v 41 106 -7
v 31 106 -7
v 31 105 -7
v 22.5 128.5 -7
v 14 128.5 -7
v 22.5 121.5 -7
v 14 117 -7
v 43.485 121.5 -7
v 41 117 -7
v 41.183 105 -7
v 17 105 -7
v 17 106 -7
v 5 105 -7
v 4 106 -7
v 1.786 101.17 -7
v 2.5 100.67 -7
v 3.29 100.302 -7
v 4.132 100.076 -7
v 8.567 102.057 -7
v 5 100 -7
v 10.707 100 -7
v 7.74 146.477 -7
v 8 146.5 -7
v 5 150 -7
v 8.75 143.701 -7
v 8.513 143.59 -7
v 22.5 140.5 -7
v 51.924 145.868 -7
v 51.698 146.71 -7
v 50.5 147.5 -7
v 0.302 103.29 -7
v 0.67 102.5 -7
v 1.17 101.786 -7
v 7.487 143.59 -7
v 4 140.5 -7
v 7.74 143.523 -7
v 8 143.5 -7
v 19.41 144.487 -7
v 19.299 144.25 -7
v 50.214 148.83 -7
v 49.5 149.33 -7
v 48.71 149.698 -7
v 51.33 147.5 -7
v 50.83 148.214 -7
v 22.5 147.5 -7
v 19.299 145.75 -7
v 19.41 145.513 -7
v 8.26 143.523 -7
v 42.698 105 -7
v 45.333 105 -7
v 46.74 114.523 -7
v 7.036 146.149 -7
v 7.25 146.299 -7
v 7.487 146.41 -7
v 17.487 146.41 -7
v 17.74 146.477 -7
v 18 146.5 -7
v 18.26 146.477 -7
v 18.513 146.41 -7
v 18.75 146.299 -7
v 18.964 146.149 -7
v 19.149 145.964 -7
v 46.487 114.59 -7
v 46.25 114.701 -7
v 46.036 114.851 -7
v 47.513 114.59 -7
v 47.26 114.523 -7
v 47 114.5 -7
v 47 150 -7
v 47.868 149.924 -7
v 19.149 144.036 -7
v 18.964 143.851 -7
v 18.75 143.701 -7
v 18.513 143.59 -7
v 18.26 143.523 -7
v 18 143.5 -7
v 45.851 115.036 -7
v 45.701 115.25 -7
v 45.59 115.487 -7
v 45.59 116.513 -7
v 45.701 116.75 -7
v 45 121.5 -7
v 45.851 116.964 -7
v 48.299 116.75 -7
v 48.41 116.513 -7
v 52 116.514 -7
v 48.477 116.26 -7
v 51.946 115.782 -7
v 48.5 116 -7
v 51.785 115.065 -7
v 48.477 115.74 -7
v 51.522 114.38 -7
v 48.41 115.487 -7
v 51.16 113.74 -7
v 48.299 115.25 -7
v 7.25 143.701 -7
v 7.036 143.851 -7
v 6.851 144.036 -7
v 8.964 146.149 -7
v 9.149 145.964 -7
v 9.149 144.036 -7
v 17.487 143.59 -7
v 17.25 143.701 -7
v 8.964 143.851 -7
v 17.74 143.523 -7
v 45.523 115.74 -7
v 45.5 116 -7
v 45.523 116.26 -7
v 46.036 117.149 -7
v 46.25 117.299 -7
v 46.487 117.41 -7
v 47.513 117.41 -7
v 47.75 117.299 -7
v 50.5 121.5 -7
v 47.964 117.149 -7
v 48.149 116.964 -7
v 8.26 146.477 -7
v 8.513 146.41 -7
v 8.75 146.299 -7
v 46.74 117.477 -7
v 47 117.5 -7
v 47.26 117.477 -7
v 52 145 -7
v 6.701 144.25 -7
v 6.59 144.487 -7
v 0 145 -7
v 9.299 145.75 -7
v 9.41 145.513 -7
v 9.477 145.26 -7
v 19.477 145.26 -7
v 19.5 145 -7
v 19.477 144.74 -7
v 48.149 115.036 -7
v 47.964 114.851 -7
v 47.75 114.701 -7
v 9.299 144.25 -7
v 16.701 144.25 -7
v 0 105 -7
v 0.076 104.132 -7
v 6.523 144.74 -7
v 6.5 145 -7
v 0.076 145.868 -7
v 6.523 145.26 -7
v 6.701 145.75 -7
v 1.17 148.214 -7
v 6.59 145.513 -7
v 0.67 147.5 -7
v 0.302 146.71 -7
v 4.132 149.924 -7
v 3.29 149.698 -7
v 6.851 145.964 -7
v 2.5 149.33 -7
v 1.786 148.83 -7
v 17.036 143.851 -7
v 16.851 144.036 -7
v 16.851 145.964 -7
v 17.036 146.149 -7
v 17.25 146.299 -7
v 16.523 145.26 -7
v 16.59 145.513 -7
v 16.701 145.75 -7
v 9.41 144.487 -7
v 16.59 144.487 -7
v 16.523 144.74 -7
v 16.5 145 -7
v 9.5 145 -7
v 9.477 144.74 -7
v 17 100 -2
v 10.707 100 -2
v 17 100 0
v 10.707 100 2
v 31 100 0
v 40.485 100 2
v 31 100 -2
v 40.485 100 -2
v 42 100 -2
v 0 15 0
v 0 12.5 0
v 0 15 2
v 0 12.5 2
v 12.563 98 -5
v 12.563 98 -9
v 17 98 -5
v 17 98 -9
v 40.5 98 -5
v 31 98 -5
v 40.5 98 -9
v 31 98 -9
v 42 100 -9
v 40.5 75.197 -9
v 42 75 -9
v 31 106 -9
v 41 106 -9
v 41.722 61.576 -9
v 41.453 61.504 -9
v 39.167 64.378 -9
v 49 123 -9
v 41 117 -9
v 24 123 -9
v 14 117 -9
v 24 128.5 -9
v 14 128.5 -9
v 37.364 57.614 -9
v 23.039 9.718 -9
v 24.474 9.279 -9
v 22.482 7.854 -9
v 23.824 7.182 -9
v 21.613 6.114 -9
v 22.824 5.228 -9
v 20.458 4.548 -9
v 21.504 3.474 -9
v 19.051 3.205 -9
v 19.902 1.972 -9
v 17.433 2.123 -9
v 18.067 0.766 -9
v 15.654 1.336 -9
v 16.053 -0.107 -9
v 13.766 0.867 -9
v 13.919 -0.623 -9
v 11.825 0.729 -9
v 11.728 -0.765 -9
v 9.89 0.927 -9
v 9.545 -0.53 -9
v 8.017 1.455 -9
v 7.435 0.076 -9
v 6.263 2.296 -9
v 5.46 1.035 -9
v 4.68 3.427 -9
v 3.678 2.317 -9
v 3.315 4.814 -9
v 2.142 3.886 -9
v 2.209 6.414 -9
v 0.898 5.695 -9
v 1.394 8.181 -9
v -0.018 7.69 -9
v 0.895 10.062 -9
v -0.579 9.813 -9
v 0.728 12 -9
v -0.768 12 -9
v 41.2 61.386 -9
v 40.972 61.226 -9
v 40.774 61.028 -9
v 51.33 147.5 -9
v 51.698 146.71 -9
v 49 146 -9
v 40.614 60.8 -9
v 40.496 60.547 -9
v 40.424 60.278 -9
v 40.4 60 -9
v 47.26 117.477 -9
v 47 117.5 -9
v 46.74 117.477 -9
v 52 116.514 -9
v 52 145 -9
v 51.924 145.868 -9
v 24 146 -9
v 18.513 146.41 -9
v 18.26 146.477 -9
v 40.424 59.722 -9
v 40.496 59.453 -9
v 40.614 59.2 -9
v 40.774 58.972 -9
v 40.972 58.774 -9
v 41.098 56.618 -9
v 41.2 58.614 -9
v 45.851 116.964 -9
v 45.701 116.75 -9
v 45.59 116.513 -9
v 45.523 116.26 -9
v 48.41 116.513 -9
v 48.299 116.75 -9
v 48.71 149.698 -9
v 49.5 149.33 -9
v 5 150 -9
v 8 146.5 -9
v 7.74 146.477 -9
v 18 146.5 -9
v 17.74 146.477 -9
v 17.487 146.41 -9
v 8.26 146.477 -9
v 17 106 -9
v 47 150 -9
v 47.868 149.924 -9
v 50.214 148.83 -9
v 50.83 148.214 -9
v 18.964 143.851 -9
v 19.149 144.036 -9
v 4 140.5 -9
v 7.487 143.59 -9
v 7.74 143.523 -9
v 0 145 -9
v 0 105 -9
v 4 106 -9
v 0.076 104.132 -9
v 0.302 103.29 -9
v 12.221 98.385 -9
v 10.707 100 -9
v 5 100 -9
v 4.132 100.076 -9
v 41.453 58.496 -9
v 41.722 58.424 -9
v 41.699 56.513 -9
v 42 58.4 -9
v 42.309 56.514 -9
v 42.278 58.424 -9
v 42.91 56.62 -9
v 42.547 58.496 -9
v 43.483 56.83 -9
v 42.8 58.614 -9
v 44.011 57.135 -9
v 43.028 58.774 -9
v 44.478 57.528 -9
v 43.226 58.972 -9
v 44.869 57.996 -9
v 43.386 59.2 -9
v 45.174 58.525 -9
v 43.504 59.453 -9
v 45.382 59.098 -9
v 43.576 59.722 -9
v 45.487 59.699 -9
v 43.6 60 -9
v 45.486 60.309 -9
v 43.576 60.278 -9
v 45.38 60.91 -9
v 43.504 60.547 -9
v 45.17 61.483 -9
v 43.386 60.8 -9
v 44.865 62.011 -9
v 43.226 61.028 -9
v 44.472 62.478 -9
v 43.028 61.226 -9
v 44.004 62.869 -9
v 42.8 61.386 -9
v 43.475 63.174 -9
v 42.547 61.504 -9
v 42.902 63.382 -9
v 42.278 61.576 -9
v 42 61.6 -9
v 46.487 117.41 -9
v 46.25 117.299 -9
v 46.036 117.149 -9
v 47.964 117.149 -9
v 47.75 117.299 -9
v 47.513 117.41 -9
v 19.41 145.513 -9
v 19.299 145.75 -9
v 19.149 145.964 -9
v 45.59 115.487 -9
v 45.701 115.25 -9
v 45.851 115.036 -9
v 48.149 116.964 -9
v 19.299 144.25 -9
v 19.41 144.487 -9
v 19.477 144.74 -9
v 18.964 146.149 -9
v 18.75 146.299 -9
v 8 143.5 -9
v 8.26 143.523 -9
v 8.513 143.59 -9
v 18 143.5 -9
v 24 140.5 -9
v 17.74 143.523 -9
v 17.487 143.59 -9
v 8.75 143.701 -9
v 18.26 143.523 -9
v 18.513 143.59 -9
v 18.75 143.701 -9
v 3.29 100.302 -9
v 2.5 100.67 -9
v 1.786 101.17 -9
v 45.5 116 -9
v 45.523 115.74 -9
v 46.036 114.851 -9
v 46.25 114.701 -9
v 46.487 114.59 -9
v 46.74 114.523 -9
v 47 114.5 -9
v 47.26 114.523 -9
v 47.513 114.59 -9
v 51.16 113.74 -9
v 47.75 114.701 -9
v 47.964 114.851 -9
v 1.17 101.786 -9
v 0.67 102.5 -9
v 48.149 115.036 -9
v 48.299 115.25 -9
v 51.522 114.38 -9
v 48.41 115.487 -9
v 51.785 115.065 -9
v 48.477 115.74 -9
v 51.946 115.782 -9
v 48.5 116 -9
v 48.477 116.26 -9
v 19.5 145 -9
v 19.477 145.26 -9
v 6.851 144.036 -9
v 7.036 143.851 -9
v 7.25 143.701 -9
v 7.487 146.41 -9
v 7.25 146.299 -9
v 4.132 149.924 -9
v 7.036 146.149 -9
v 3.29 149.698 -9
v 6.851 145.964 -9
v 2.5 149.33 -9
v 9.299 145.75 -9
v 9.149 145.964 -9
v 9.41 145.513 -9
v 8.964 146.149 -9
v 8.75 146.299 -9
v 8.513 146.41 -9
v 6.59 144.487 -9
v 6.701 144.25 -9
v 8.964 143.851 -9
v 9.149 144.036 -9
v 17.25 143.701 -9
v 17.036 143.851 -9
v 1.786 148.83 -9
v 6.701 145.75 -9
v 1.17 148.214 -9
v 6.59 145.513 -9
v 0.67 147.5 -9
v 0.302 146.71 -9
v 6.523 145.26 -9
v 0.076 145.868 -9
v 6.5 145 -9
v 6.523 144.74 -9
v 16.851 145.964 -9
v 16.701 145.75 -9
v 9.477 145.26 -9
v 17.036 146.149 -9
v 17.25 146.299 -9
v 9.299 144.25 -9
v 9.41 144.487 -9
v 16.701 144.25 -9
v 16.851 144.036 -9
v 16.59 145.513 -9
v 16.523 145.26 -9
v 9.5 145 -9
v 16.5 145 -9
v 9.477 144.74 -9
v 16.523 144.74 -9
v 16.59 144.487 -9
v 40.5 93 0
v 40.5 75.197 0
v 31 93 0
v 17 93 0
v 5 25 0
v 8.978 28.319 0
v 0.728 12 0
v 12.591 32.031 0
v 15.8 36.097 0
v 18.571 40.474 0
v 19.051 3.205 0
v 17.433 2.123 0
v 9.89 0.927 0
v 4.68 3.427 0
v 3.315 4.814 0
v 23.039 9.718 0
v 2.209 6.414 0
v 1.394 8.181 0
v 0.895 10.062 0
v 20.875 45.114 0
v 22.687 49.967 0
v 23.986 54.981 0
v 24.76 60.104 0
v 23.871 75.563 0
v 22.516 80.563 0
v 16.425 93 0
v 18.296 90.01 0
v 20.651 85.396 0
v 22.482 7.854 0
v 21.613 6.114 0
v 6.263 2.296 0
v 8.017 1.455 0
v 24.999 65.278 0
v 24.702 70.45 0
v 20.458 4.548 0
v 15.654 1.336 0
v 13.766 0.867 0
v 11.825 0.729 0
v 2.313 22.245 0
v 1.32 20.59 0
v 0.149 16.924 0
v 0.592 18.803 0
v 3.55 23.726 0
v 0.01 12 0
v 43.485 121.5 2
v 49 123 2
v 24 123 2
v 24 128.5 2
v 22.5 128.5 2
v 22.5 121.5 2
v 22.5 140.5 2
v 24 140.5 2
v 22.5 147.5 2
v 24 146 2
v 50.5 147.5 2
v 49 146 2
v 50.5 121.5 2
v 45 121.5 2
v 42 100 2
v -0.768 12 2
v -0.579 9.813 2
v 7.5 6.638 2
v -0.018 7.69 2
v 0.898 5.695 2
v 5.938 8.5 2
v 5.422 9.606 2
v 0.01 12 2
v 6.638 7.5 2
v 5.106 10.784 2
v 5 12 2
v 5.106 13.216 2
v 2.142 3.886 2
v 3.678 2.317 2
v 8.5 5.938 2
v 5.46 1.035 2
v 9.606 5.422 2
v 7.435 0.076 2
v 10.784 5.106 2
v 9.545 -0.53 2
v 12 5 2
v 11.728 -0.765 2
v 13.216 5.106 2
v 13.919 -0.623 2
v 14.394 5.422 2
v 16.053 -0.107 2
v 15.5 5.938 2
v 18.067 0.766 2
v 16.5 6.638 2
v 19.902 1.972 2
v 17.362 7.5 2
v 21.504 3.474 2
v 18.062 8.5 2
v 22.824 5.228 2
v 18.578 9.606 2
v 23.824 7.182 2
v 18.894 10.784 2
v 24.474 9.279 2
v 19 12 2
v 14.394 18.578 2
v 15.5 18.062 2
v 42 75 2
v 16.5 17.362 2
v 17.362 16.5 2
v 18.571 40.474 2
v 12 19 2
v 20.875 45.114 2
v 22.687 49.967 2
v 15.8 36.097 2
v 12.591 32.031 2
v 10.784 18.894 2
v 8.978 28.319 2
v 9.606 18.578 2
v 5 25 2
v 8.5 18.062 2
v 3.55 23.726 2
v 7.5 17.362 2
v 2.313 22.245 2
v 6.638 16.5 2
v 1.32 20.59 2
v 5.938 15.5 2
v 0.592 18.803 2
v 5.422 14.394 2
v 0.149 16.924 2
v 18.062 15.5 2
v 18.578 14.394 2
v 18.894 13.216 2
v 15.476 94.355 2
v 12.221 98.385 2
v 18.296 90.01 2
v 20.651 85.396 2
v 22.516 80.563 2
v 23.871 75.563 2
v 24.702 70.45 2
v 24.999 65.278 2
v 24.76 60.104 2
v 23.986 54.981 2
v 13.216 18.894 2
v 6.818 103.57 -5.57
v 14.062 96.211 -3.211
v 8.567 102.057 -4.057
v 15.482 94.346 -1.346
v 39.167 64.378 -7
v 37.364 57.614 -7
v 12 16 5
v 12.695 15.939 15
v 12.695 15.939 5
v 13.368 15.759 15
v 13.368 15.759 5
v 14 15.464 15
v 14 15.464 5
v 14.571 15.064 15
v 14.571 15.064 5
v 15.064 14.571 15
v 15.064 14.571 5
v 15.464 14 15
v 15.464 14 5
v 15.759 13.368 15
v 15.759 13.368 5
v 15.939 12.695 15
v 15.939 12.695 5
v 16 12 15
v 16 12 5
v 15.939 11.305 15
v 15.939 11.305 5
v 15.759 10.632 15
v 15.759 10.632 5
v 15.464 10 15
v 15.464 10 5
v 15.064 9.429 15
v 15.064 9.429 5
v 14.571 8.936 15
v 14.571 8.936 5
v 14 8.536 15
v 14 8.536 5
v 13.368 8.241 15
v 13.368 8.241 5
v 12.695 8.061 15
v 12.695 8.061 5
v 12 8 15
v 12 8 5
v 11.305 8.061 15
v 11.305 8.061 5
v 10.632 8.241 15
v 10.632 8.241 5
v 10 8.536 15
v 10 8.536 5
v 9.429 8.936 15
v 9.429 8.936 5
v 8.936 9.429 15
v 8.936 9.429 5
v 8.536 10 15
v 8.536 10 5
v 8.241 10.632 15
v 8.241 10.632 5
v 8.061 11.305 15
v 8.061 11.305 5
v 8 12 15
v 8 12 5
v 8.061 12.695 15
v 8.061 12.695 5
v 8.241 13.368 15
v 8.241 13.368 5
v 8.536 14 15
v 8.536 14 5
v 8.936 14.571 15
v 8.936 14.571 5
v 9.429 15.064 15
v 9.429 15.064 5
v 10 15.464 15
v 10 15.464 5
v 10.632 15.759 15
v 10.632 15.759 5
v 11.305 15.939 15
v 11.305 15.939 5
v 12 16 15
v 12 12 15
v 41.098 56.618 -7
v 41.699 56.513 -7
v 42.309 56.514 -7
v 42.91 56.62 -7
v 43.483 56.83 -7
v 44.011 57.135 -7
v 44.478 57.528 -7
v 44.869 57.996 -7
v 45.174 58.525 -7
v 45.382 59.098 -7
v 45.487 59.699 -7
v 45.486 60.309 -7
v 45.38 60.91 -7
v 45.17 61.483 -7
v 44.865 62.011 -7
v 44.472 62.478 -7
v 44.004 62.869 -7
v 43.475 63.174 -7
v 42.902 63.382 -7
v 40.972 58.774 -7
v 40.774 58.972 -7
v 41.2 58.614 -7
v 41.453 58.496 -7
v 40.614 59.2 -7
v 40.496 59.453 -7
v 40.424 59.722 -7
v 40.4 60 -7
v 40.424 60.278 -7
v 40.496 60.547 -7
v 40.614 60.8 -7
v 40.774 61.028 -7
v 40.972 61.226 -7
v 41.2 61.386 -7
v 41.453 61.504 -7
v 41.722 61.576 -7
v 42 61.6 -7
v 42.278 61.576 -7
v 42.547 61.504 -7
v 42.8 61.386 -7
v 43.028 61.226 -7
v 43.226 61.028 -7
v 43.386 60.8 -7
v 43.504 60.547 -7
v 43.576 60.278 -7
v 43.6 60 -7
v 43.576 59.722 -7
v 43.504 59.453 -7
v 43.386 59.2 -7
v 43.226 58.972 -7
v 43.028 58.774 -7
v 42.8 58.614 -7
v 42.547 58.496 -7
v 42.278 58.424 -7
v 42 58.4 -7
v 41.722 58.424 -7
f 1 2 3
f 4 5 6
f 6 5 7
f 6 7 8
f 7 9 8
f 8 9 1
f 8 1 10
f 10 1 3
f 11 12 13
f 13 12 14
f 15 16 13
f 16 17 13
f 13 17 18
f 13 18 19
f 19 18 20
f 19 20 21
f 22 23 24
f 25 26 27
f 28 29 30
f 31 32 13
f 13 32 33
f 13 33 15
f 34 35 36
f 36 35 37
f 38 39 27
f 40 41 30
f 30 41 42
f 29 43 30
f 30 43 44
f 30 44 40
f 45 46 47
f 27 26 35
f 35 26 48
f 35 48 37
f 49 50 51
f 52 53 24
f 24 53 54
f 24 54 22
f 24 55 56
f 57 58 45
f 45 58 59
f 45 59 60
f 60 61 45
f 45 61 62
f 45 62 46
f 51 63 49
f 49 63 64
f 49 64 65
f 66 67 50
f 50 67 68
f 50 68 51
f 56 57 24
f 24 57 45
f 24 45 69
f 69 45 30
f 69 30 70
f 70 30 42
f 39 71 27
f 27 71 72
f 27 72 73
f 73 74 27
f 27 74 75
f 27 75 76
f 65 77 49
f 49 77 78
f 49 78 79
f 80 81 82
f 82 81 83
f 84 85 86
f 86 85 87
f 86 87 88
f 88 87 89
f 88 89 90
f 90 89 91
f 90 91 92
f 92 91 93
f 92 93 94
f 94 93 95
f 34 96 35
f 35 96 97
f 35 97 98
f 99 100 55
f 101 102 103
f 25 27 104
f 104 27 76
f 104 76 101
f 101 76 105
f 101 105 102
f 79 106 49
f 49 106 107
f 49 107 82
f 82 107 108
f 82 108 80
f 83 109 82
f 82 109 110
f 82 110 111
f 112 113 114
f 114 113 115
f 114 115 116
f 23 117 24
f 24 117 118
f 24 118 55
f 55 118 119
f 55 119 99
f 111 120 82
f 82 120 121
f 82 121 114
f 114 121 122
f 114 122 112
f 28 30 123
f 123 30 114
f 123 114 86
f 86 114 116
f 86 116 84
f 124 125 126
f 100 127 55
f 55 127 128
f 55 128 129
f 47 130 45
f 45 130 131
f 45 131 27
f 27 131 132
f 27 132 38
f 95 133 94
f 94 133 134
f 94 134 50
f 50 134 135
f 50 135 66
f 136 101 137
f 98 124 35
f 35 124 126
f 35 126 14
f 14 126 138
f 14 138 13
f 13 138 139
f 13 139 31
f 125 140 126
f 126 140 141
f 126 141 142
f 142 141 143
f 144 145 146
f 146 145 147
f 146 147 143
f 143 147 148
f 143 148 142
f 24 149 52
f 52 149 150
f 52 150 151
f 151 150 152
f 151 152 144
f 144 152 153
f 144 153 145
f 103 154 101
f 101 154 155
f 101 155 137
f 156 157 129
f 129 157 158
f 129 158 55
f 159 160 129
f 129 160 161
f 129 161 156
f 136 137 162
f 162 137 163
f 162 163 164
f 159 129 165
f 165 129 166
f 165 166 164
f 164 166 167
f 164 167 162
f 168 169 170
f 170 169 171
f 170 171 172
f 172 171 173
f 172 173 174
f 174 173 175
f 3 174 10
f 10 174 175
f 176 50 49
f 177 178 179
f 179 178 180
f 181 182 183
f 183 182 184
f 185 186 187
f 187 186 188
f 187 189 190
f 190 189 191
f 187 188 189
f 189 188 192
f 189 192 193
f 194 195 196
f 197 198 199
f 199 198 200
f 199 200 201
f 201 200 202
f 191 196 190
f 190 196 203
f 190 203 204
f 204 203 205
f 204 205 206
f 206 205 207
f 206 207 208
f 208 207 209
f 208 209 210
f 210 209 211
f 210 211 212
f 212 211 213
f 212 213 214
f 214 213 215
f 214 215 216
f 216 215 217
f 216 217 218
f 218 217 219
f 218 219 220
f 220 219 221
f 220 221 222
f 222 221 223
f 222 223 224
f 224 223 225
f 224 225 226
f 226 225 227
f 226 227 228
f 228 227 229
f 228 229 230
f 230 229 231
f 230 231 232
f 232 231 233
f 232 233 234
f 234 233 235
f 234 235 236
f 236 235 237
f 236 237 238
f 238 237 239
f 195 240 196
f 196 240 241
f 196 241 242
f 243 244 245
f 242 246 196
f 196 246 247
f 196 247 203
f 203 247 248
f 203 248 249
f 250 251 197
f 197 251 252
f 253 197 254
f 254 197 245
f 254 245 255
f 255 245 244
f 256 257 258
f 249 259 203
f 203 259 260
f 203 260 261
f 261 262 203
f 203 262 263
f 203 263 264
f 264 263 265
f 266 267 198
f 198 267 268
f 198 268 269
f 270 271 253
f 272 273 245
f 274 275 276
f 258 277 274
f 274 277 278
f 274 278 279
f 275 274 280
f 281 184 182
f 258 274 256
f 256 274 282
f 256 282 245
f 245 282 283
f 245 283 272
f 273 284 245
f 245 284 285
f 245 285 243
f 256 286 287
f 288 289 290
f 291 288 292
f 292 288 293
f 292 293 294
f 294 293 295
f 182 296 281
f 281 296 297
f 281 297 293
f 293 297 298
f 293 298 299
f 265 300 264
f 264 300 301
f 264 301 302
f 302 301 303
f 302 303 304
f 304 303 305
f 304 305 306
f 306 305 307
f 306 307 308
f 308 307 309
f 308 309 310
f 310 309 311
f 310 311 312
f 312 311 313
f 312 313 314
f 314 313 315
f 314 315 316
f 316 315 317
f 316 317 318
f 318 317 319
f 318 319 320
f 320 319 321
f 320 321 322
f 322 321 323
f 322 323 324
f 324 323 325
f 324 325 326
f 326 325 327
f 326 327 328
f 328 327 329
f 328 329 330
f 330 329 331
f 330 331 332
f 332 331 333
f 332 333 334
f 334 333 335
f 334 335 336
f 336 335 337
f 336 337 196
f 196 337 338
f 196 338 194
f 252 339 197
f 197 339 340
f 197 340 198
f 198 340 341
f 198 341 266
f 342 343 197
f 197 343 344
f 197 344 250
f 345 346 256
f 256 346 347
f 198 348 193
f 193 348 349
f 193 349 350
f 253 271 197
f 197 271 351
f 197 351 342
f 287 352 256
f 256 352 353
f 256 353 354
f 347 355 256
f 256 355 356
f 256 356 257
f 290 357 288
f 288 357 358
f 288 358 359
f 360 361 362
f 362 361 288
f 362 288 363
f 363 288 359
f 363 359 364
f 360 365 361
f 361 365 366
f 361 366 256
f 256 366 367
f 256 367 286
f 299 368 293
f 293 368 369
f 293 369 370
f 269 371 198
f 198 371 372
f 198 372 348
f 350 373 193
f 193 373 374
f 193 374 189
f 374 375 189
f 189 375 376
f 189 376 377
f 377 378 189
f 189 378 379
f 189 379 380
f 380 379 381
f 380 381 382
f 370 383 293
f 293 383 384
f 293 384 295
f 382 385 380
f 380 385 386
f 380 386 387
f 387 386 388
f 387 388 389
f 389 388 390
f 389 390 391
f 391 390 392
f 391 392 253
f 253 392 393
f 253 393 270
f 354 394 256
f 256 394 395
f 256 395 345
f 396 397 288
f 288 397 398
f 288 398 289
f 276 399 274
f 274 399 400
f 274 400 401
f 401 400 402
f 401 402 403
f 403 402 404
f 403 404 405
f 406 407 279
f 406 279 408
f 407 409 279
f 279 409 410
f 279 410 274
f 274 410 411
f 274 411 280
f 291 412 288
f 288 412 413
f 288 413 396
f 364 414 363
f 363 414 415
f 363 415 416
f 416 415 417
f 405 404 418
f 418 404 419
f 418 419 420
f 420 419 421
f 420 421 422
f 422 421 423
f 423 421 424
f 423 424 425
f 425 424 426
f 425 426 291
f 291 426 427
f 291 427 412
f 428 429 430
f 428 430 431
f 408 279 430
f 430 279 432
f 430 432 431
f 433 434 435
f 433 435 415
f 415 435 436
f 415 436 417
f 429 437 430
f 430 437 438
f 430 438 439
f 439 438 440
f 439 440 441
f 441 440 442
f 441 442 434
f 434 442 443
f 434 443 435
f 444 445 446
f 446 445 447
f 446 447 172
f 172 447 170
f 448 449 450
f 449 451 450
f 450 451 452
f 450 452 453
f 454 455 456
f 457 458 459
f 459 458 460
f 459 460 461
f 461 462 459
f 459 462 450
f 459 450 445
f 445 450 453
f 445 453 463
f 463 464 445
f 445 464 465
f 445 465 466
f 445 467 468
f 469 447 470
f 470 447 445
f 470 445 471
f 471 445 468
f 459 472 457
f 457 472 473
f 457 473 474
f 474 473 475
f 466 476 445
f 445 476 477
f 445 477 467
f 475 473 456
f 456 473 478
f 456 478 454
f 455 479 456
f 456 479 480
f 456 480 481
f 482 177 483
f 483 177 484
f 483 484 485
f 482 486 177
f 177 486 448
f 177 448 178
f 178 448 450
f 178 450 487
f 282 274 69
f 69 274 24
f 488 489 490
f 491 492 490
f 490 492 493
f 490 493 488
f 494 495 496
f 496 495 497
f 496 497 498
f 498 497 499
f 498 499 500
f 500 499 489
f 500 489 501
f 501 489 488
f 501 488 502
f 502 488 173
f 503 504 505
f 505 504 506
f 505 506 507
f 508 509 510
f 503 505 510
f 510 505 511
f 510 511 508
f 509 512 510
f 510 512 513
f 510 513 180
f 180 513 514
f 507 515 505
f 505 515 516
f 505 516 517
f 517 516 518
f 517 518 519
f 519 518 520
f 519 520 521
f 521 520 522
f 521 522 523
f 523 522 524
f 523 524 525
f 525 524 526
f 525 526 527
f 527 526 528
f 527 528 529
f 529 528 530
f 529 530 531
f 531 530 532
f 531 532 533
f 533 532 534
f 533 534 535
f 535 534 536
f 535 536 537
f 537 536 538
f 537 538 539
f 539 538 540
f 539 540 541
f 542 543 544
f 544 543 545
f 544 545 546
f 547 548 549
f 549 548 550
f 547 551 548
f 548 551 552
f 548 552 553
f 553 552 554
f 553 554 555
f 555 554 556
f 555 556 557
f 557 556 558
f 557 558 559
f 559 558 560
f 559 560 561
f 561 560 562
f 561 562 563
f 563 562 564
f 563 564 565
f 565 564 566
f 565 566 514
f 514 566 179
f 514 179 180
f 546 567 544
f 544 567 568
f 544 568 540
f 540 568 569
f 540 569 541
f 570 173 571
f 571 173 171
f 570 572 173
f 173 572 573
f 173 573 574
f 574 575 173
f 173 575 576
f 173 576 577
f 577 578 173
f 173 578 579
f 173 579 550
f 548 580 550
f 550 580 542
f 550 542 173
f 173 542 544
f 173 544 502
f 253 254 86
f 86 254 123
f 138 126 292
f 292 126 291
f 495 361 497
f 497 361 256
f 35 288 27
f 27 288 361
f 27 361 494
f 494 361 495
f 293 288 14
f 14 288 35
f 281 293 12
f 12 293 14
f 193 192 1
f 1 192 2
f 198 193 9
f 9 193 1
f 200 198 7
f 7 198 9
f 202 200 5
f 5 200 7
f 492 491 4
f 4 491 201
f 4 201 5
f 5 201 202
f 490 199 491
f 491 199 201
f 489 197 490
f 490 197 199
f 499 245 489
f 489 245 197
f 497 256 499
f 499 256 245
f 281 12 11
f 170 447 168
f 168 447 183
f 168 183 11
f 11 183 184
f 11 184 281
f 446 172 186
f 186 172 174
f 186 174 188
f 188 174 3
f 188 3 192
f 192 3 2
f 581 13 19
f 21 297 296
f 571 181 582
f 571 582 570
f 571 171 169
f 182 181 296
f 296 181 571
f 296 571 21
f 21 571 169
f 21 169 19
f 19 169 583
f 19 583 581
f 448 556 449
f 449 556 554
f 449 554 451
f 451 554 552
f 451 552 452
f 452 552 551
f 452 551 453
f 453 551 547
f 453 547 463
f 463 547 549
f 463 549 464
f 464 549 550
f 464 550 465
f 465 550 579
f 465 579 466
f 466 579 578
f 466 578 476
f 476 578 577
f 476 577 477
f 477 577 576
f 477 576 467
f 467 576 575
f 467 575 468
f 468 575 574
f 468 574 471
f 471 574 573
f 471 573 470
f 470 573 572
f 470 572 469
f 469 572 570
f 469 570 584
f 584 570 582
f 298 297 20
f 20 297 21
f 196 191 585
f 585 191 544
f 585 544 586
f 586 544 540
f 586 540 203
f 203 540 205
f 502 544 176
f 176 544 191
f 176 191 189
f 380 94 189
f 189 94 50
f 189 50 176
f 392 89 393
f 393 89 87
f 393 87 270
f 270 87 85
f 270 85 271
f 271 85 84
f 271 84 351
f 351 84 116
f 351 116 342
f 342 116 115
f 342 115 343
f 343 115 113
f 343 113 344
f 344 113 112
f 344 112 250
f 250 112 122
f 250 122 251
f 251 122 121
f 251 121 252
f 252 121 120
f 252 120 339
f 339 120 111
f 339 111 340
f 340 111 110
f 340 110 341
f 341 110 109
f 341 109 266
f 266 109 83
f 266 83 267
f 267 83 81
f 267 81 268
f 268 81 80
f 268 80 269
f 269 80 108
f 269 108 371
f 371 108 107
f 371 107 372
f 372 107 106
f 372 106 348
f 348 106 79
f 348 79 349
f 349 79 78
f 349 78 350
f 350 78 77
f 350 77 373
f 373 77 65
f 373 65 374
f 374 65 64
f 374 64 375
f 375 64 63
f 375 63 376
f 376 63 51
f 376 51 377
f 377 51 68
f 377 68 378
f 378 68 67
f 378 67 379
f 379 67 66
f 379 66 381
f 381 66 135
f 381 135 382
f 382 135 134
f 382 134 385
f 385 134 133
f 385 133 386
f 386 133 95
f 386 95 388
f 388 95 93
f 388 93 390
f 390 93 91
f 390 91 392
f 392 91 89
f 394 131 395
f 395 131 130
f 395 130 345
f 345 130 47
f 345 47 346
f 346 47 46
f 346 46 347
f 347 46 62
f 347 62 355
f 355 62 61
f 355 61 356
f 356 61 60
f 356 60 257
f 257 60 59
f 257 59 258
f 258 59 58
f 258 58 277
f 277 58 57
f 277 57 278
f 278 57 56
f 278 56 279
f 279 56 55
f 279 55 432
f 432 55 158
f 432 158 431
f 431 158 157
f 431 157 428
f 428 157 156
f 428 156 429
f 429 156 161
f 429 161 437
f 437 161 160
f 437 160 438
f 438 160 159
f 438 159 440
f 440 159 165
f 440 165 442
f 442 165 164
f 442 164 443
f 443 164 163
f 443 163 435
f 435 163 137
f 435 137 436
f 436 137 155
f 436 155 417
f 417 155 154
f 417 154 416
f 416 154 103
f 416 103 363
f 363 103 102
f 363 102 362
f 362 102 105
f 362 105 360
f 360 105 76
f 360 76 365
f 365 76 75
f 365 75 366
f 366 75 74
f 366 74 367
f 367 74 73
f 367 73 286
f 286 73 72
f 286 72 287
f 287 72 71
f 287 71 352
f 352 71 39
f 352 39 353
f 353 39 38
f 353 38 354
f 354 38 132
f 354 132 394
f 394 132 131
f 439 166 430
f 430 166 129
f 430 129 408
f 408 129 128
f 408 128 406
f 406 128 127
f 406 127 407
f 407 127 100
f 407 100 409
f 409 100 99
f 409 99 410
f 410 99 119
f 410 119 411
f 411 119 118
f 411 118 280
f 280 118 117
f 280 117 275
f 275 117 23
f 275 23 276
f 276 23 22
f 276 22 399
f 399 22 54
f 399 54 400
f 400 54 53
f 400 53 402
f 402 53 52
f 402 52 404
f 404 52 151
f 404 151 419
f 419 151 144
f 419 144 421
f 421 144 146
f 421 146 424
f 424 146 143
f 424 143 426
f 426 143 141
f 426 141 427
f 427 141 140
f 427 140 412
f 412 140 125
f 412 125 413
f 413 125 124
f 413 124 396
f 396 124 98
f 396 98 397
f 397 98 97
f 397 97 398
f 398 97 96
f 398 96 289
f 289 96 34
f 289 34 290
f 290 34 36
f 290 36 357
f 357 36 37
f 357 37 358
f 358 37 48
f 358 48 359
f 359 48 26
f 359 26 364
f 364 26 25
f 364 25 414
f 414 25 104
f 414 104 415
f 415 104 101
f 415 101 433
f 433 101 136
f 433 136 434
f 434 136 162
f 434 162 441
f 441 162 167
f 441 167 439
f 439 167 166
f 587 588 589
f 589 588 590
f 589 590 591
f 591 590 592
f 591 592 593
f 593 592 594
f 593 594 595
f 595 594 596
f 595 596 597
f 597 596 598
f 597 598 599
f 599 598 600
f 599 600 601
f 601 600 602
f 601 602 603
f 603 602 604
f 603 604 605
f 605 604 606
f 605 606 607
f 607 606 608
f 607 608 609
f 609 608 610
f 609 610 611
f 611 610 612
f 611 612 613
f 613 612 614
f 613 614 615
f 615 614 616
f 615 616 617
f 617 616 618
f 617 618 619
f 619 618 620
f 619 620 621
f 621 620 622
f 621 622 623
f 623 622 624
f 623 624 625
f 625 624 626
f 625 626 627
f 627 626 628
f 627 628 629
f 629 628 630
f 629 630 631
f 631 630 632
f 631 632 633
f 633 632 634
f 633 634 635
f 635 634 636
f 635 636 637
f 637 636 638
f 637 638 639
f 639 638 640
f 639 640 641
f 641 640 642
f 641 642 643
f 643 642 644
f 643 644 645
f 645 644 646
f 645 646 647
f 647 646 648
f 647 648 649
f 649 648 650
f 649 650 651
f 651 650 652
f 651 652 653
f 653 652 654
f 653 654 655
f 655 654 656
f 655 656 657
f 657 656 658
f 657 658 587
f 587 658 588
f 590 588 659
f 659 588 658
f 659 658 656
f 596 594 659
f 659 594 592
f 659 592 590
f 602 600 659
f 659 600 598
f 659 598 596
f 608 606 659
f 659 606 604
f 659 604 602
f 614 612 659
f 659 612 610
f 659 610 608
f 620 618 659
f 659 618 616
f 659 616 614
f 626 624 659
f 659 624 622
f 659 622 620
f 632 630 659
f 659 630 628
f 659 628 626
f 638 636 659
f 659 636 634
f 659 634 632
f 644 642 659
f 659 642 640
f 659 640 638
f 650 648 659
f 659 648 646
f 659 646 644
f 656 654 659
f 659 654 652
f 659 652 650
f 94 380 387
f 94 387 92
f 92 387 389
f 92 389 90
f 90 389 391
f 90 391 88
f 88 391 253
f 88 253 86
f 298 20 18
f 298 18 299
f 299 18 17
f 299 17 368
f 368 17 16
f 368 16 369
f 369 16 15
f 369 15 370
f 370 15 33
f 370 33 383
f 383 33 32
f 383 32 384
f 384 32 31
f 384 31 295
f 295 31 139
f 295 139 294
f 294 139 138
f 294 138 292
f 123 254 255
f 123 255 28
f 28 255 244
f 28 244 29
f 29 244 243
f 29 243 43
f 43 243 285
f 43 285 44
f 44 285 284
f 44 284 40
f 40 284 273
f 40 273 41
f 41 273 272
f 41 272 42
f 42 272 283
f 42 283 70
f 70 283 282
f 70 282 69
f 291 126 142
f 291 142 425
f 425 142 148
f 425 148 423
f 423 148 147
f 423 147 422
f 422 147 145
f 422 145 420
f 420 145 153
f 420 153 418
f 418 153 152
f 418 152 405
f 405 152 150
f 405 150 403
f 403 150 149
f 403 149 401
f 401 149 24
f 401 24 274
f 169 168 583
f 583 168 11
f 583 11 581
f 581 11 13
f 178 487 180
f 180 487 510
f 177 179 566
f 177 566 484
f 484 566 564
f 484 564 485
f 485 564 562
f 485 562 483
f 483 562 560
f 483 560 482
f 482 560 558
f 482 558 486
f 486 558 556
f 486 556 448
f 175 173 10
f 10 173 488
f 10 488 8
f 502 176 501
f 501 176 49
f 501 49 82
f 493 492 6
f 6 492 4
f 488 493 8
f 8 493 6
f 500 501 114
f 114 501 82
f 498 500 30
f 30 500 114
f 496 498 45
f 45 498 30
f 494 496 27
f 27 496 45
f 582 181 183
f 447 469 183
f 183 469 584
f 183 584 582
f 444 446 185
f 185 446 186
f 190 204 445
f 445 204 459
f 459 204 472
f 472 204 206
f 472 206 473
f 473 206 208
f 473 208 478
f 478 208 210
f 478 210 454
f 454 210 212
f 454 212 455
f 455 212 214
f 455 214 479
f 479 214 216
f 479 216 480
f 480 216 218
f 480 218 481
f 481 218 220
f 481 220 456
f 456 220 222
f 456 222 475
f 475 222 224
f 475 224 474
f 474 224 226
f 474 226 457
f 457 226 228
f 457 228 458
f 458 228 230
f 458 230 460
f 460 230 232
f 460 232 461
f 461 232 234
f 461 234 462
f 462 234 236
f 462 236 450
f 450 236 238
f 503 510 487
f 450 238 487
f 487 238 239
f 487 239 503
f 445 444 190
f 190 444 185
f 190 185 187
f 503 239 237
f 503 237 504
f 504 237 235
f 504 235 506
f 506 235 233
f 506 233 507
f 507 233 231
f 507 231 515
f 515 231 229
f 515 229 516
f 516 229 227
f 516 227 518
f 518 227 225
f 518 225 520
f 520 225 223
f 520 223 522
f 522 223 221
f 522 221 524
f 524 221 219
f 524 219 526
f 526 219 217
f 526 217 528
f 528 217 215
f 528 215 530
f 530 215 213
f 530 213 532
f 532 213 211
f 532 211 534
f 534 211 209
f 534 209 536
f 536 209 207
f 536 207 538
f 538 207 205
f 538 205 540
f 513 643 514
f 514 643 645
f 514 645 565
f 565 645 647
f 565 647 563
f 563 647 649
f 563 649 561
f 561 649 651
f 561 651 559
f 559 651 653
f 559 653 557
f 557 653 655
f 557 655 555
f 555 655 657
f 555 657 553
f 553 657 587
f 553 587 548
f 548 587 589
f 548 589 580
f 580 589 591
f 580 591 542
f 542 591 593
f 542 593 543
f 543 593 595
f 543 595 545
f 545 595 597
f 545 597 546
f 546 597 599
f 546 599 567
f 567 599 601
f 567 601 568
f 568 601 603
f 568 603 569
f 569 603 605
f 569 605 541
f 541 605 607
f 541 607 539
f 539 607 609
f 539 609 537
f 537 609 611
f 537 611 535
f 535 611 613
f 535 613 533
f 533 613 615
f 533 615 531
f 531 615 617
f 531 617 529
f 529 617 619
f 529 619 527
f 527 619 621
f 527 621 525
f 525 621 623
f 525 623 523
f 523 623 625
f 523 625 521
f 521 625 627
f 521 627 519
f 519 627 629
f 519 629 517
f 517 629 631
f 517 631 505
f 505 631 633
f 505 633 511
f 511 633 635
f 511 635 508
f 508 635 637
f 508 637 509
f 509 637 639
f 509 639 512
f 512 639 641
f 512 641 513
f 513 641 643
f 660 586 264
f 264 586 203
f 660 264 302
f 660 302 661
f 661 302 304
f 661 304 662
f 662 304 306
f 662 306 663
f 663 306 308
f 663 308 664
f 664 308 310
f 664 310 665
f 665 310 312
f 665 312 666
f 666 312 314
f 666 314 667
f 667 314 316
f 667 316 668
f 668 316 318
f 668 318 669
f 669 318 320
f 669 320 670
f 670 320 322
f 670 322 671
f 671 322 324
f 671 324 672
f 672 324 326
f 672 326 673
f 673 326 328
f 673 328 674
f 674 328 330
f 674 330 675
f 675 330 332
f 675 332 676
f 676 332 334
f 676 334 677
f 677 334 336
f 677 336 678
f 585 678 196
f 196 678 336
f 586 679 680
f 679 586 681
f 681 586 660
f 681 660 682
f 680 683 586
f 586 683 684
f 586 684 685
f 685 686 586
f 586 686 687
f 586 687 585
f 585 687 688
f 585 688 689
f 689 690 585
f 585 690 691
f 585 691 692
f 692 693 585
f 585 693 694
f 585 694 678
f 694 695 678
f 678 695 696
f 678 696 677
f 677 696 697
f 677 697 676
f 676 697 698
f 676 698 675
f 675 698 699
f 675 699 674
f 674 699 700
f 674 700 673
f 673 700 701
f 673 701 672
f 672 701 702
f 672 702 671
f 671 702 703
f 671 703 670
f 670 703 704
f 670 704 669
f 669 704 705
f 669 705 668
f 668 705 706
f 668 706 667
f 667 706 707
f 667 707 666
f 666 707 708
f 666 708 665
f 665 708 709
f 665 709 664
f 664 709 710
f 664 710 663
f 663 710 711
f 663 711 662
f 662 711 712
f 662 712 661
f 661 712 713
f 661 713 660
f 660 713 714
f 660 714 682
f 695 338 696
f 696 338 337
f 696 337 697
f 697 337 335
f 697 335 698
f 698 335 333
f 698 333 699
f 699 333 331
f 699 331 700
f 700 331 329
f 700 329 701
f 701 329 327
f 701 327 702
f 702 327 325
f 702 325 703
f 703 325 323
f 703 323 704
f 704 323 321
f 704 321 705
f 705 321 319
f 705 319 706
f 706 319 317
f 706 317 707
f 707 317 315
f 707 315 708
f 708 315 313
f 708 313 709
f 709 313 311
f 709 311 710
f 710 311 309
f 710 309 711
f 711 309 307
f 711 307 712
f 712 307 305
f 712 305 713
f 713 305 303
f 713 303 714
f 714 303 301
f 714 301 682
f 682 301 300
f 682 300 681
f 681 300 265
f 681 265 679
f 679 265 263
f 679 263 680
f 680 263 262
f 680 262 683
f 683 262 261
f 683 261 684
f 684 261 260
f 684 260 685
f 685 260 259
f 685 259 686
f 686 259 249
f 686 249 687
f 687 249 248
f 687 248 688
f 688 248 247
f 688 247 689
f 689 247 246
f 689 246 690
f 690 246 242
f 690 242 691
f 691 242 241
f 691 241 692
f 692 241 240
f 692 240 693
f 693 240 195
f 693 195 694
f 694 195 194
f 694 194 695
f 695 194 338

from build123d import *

# Parameters (mm, degrees)
EXTRUDE_1_DEPTH                 = 52
CUT_EXTRUDE_1_REACH             = 161.013
CUT_EXTRUDE_1_DIRECTION_2_DEPTH = 7
SKETCH_3_R                      = 1.5
CUT_EXTRUDE_2_DEPTH             = 160.138304628
SKETCH_5_R                      = 4
EXTRUDE_3_DEPTH                 = 15
FILLET_1_R                      = 5
CHAMFER_1_SIZE                  = 5
FILLET_2_R                      = 12.5
EXTRUDE_2_DEPTH                 = 9
CHAMFER_2_SIZE                  = 5
EXTRUDE_4_DEPTH                 = 9
EXTRUDE_4_DEPTH_BACK            = 2
CHAMFER_3_SIZE                  = 3
SKETCH_7_R                      = 1.6
EXTRUDE_5_DEPTH                 = 2


with BuildPart() as part:
    # 草图1 → 凸台-拉伸1 (new body)
    with BuildSketch(Plane(origin=(0, 0, 0), x_dir=(0, 0, -1), z_dir=(1, 0, 0))):
        Polygon((0, 0), (0, 98), (9, 98), (9, 150), (7, 150), (7, 100), (-2, 100), (-2, 0), align=None)
    extrude(amount=EXTRUDE_1_DEPTH)

    # 草图2 → 切除-拉伸1 (cut, up to next)
    with BuildSketch(Plane.XY.offset(-7), mode=Mode.PRIVATE) as cut_extrude_1_sk1:
        Polygon((24, 146), (49, 146), (49, 123), (24, 123), (24, 128.5), (14, 128.5), (14, 117), (41, 117), (41, 106), (31, 106), (31, 98), (17, 98), (17, 106), (4, 106), (4, 140.5), (24, 140.5), align=None)
    cut_extrude_1_tool1 = extrude(cut_extrude_1_sk1.sketch, amount=-CUT_EXTRUDE_1_REACH, mode=Mode.PRIVATE) & part.part
    add(cut_extrude_1_tool1.solids().sort_by_distance((25.692202, 124.595066, -7))[0], mode=Mode.SUBTRACT)

    # 草图2 → 切除-拉伸1 direction 2 (cut)
    with BuildSketch(Plane.XY.offset(-7)):
        Polygon((24, 146), (49, 146), (49, 123), (24, 123), (24, 128.5), (14, 128.5), (14, 117), (41, 117), (41, 106), (31, 106), (31, 98), (17, 98), (17, 106), (4, 106), (4, 140.5), (24, 140.5), align=None)
    extrude(amount=CUT_EXTRUDE_1_DIRECTION_2_DEPTH, mode=Mode.SUBTRACT)

    # 草图3 → 切除-拉伸2 (cut, through all)
    with BuildSketch(Plane.XY.offset(2)):
        with Locations((8, 145)):
            Circle(SKETCH_3_R)
        with Locations((18, 145)):
            Circle(SKETCH_3_R)
        with Locations((47, 116)):
            Circle(SKETCH_3_R)
        with BuildLine():
            Line((0, 100), (10.707142143, 100))
            ThreePointArc((10.707142143, 100), (24.538989746, 58.225895269), (0, 21.698729811))
            Line((0, 21.698729811), (0, 100))
        make_face()
        Polygon((42, 75), (42, 100), (52, 115), (52, 0), (22, 0), align=None)
    extrude(amount=-CUT_EXTRUDE_2_DEPTH, mode=Mode.SUBTRACT)

    # 草图5 → 凸台-拉伸3 (add)
    with BuildSketch(Plane(origin=(0, 0, 0), x_dir=(-1, 0, 0), z_dir=(0, 0, -1))):
        with Locations(Location((-12, 12, 0), (0, 0, 90))):
            Circle(SKETCH_5_R)
    extrude(amount=-EXTRUDE_3_DEPTH)

    # 圆角1
    fillet_1_edges = [part.edges().sort_by_distance(p)[0] for p in [
        (52, 115, -8),
        (0, 100, -8),
        (52, 150, -8),
        (0, 150, -8),
    ]]
    fillet(fillet_1_edges, radius=FILLET_1_R)

    # 倒角1
    chamfer_1_edges = [part.edges().sort_by_distance(p)[0] for p in [
        (13.853571071, 100, -7),
        (36.5, 100, -7),
    ]]
    chamfer(chamfer_1_edges, length=CHAMFER_1_SIZE)

    # 圆角2
    # the kernel refuses this fillet: 12.5 mm, written as the material it takes off along each edge
    with BuildSketch(Plane(origin=(0, 0, 33.25), x_dir=(1, 0, 0), z_dir=(0, 0, -1))) as fillet_2_piece_1:
        with BuildLine():
            CenterArc((FILLET_2_R, -FILLET_2_R), FILLET_2_R, 90, 90)
            Line((0, -FILLET_2_R), (0, 0))
            Line((0, 0), (FILLET_2_R, 0))
        make_face()
    extrude(amount=64.5, mode=Mode.SUBTRACT)
    with BuildSketch(Plane(origin=(22, 0, 26.008697284), x_dir=(0.2576626505603325, 0.9662349396012462, 0), z_dir=(0, 0, -1))) as fillet_2_piece_2:
        with BuildLine():
            CenterArc((FILLET_2_R * 0.768278313084, -FILLET_2_R), FILLET_2_R, 90, 75.068582822)
            Line((-FILLET_2_R * 0.197956626517, -FILLET_2_R * 0.74233734944), (0, 0))
            Line((0, 0), (FILLET_2_R * 0.768278313084, 0))
        make_face()
    extrude(amount=50.017394568, mode=Mode.SUBTRACT)
    with BuildSketch(Plane(origin=(0, 21.698729811, 18.746824527), x_dir=(0.8345119301206998, 0.550989871491504, 0), z_dir=(0, 0, -1))) as fillet_2_piece_3:
        with BuildLine():
            CenterArc((6.740466849, 12.477543337), FILLET_2_R, 213.434948823, 53.130102354)
            Line((-3.690932278, 5.590169944), (0, 0))
            ThreePointArc((0, 0), (2.995763044, 0.08982665), (5.991526088, 0))
        make_face()
    extrude(amount=35.493649054, mode=Mode.SUBTRACT)

    # 草图4 → 凸台-拉伸2 (add)
    with BuildSketch(Plane.XY.offset(-7)):
        Polygon((24, 128.5), (24, 123), (49, 123), (49, 146), (24, 146), (24, 140.5), (22.5, 140.5), (22.5, 147.5), (50.5, 147.5), (50.5, 121.5), (45, 121.5), (42, 100), (40.485467906, 100), (43.485467906, 121.5), (22.5, 121.5), (22.5, 128.5), align=None)
    extrude(amount=EXTRUDE_2_DEPTH)

    # 倒角2
    chamfer_2_edges = [part.edges().sort_by_distance(p)[0] for p in [
        (14.781639971, 98, 0),
        (36.5, 98, 0),
    ]]
    chamfer(chamfer_2_edges, length=CHAMFER_2_SIZE)

    # 草图6 → 凸台-拉伸4 (add, two sides: drawn at the far end of the back side and taken through both)
    with BuildSketch(Plane(origin=(0, 0, 0), x_dir=(-1, 0, 0), z_dir=(0, 0, -1)).offset(-EXTRUDE_4_DEPTH_BACK)):
        with BuildLine():
            Line((-40.5, 100), (-42, 100))
            Line((-42, 100), (-42, 75))
            Line((-42, 75), (-24.474457831, 9.279216868))
            ThreePointArc((-24.474457831, 9.279216868), (-10.631728691, -0.694195235), (0.76772333, 12))
            Line((0.76772333, 12), (-0.727521137, 12))
            ThreePointArc((-0.727521137, 12), (-10.853296347, 0.785997572), (-23.03917982, 9.718489836))
            Line((-23.03917982, 9.718489836), (-40.5, 75.196565511))
            Line((-40.5, 75.196565511), (-40.5, 100))
        make_face()
    extrude(amount=EXTRUDE_4_DEPTH + EXTRUDE_4_DEPTH_BACK)

    # 倒角3
    chamfer_3_edges = [part.edges().sort_by_distance(p)[0] for p in [
        (12, 8, 2),
    ]]
    chamfer(chamfer_3_edges, length=CHAMFER_3_SIZE)

    # 草图7 → 凸台-拉伸5 (add)
    with BuildSketch(Plane(origin=(0, 0, -9), x_dir=(-1, 0, 0), z_dir=(0, 0, -1))):
        with BuildLine():
            Line((-39.167379443, 64.377672911), (-42.901819277, 63.381822289))
            ThreePointArc((-42.901819277, 63.381822289), (-45.381822289, 59.098180723), (-41.098180723, 56.618177711))
            Line((-41.098180723, 56.618177711), (-37.363740889, 57.614028334))
            Line((-37.363740889, 57.614028334), (-39.167379443, 64.377672911))
        make_face()
        with Locations(Location((-42, 60, 0), (0, 0, 90))):
            Circle(SKETCH_7_R, mode=Mode.SUBTRACT)
    extrude(amount=-EXTRUDE_5_DEPTH)


solid = part.part
